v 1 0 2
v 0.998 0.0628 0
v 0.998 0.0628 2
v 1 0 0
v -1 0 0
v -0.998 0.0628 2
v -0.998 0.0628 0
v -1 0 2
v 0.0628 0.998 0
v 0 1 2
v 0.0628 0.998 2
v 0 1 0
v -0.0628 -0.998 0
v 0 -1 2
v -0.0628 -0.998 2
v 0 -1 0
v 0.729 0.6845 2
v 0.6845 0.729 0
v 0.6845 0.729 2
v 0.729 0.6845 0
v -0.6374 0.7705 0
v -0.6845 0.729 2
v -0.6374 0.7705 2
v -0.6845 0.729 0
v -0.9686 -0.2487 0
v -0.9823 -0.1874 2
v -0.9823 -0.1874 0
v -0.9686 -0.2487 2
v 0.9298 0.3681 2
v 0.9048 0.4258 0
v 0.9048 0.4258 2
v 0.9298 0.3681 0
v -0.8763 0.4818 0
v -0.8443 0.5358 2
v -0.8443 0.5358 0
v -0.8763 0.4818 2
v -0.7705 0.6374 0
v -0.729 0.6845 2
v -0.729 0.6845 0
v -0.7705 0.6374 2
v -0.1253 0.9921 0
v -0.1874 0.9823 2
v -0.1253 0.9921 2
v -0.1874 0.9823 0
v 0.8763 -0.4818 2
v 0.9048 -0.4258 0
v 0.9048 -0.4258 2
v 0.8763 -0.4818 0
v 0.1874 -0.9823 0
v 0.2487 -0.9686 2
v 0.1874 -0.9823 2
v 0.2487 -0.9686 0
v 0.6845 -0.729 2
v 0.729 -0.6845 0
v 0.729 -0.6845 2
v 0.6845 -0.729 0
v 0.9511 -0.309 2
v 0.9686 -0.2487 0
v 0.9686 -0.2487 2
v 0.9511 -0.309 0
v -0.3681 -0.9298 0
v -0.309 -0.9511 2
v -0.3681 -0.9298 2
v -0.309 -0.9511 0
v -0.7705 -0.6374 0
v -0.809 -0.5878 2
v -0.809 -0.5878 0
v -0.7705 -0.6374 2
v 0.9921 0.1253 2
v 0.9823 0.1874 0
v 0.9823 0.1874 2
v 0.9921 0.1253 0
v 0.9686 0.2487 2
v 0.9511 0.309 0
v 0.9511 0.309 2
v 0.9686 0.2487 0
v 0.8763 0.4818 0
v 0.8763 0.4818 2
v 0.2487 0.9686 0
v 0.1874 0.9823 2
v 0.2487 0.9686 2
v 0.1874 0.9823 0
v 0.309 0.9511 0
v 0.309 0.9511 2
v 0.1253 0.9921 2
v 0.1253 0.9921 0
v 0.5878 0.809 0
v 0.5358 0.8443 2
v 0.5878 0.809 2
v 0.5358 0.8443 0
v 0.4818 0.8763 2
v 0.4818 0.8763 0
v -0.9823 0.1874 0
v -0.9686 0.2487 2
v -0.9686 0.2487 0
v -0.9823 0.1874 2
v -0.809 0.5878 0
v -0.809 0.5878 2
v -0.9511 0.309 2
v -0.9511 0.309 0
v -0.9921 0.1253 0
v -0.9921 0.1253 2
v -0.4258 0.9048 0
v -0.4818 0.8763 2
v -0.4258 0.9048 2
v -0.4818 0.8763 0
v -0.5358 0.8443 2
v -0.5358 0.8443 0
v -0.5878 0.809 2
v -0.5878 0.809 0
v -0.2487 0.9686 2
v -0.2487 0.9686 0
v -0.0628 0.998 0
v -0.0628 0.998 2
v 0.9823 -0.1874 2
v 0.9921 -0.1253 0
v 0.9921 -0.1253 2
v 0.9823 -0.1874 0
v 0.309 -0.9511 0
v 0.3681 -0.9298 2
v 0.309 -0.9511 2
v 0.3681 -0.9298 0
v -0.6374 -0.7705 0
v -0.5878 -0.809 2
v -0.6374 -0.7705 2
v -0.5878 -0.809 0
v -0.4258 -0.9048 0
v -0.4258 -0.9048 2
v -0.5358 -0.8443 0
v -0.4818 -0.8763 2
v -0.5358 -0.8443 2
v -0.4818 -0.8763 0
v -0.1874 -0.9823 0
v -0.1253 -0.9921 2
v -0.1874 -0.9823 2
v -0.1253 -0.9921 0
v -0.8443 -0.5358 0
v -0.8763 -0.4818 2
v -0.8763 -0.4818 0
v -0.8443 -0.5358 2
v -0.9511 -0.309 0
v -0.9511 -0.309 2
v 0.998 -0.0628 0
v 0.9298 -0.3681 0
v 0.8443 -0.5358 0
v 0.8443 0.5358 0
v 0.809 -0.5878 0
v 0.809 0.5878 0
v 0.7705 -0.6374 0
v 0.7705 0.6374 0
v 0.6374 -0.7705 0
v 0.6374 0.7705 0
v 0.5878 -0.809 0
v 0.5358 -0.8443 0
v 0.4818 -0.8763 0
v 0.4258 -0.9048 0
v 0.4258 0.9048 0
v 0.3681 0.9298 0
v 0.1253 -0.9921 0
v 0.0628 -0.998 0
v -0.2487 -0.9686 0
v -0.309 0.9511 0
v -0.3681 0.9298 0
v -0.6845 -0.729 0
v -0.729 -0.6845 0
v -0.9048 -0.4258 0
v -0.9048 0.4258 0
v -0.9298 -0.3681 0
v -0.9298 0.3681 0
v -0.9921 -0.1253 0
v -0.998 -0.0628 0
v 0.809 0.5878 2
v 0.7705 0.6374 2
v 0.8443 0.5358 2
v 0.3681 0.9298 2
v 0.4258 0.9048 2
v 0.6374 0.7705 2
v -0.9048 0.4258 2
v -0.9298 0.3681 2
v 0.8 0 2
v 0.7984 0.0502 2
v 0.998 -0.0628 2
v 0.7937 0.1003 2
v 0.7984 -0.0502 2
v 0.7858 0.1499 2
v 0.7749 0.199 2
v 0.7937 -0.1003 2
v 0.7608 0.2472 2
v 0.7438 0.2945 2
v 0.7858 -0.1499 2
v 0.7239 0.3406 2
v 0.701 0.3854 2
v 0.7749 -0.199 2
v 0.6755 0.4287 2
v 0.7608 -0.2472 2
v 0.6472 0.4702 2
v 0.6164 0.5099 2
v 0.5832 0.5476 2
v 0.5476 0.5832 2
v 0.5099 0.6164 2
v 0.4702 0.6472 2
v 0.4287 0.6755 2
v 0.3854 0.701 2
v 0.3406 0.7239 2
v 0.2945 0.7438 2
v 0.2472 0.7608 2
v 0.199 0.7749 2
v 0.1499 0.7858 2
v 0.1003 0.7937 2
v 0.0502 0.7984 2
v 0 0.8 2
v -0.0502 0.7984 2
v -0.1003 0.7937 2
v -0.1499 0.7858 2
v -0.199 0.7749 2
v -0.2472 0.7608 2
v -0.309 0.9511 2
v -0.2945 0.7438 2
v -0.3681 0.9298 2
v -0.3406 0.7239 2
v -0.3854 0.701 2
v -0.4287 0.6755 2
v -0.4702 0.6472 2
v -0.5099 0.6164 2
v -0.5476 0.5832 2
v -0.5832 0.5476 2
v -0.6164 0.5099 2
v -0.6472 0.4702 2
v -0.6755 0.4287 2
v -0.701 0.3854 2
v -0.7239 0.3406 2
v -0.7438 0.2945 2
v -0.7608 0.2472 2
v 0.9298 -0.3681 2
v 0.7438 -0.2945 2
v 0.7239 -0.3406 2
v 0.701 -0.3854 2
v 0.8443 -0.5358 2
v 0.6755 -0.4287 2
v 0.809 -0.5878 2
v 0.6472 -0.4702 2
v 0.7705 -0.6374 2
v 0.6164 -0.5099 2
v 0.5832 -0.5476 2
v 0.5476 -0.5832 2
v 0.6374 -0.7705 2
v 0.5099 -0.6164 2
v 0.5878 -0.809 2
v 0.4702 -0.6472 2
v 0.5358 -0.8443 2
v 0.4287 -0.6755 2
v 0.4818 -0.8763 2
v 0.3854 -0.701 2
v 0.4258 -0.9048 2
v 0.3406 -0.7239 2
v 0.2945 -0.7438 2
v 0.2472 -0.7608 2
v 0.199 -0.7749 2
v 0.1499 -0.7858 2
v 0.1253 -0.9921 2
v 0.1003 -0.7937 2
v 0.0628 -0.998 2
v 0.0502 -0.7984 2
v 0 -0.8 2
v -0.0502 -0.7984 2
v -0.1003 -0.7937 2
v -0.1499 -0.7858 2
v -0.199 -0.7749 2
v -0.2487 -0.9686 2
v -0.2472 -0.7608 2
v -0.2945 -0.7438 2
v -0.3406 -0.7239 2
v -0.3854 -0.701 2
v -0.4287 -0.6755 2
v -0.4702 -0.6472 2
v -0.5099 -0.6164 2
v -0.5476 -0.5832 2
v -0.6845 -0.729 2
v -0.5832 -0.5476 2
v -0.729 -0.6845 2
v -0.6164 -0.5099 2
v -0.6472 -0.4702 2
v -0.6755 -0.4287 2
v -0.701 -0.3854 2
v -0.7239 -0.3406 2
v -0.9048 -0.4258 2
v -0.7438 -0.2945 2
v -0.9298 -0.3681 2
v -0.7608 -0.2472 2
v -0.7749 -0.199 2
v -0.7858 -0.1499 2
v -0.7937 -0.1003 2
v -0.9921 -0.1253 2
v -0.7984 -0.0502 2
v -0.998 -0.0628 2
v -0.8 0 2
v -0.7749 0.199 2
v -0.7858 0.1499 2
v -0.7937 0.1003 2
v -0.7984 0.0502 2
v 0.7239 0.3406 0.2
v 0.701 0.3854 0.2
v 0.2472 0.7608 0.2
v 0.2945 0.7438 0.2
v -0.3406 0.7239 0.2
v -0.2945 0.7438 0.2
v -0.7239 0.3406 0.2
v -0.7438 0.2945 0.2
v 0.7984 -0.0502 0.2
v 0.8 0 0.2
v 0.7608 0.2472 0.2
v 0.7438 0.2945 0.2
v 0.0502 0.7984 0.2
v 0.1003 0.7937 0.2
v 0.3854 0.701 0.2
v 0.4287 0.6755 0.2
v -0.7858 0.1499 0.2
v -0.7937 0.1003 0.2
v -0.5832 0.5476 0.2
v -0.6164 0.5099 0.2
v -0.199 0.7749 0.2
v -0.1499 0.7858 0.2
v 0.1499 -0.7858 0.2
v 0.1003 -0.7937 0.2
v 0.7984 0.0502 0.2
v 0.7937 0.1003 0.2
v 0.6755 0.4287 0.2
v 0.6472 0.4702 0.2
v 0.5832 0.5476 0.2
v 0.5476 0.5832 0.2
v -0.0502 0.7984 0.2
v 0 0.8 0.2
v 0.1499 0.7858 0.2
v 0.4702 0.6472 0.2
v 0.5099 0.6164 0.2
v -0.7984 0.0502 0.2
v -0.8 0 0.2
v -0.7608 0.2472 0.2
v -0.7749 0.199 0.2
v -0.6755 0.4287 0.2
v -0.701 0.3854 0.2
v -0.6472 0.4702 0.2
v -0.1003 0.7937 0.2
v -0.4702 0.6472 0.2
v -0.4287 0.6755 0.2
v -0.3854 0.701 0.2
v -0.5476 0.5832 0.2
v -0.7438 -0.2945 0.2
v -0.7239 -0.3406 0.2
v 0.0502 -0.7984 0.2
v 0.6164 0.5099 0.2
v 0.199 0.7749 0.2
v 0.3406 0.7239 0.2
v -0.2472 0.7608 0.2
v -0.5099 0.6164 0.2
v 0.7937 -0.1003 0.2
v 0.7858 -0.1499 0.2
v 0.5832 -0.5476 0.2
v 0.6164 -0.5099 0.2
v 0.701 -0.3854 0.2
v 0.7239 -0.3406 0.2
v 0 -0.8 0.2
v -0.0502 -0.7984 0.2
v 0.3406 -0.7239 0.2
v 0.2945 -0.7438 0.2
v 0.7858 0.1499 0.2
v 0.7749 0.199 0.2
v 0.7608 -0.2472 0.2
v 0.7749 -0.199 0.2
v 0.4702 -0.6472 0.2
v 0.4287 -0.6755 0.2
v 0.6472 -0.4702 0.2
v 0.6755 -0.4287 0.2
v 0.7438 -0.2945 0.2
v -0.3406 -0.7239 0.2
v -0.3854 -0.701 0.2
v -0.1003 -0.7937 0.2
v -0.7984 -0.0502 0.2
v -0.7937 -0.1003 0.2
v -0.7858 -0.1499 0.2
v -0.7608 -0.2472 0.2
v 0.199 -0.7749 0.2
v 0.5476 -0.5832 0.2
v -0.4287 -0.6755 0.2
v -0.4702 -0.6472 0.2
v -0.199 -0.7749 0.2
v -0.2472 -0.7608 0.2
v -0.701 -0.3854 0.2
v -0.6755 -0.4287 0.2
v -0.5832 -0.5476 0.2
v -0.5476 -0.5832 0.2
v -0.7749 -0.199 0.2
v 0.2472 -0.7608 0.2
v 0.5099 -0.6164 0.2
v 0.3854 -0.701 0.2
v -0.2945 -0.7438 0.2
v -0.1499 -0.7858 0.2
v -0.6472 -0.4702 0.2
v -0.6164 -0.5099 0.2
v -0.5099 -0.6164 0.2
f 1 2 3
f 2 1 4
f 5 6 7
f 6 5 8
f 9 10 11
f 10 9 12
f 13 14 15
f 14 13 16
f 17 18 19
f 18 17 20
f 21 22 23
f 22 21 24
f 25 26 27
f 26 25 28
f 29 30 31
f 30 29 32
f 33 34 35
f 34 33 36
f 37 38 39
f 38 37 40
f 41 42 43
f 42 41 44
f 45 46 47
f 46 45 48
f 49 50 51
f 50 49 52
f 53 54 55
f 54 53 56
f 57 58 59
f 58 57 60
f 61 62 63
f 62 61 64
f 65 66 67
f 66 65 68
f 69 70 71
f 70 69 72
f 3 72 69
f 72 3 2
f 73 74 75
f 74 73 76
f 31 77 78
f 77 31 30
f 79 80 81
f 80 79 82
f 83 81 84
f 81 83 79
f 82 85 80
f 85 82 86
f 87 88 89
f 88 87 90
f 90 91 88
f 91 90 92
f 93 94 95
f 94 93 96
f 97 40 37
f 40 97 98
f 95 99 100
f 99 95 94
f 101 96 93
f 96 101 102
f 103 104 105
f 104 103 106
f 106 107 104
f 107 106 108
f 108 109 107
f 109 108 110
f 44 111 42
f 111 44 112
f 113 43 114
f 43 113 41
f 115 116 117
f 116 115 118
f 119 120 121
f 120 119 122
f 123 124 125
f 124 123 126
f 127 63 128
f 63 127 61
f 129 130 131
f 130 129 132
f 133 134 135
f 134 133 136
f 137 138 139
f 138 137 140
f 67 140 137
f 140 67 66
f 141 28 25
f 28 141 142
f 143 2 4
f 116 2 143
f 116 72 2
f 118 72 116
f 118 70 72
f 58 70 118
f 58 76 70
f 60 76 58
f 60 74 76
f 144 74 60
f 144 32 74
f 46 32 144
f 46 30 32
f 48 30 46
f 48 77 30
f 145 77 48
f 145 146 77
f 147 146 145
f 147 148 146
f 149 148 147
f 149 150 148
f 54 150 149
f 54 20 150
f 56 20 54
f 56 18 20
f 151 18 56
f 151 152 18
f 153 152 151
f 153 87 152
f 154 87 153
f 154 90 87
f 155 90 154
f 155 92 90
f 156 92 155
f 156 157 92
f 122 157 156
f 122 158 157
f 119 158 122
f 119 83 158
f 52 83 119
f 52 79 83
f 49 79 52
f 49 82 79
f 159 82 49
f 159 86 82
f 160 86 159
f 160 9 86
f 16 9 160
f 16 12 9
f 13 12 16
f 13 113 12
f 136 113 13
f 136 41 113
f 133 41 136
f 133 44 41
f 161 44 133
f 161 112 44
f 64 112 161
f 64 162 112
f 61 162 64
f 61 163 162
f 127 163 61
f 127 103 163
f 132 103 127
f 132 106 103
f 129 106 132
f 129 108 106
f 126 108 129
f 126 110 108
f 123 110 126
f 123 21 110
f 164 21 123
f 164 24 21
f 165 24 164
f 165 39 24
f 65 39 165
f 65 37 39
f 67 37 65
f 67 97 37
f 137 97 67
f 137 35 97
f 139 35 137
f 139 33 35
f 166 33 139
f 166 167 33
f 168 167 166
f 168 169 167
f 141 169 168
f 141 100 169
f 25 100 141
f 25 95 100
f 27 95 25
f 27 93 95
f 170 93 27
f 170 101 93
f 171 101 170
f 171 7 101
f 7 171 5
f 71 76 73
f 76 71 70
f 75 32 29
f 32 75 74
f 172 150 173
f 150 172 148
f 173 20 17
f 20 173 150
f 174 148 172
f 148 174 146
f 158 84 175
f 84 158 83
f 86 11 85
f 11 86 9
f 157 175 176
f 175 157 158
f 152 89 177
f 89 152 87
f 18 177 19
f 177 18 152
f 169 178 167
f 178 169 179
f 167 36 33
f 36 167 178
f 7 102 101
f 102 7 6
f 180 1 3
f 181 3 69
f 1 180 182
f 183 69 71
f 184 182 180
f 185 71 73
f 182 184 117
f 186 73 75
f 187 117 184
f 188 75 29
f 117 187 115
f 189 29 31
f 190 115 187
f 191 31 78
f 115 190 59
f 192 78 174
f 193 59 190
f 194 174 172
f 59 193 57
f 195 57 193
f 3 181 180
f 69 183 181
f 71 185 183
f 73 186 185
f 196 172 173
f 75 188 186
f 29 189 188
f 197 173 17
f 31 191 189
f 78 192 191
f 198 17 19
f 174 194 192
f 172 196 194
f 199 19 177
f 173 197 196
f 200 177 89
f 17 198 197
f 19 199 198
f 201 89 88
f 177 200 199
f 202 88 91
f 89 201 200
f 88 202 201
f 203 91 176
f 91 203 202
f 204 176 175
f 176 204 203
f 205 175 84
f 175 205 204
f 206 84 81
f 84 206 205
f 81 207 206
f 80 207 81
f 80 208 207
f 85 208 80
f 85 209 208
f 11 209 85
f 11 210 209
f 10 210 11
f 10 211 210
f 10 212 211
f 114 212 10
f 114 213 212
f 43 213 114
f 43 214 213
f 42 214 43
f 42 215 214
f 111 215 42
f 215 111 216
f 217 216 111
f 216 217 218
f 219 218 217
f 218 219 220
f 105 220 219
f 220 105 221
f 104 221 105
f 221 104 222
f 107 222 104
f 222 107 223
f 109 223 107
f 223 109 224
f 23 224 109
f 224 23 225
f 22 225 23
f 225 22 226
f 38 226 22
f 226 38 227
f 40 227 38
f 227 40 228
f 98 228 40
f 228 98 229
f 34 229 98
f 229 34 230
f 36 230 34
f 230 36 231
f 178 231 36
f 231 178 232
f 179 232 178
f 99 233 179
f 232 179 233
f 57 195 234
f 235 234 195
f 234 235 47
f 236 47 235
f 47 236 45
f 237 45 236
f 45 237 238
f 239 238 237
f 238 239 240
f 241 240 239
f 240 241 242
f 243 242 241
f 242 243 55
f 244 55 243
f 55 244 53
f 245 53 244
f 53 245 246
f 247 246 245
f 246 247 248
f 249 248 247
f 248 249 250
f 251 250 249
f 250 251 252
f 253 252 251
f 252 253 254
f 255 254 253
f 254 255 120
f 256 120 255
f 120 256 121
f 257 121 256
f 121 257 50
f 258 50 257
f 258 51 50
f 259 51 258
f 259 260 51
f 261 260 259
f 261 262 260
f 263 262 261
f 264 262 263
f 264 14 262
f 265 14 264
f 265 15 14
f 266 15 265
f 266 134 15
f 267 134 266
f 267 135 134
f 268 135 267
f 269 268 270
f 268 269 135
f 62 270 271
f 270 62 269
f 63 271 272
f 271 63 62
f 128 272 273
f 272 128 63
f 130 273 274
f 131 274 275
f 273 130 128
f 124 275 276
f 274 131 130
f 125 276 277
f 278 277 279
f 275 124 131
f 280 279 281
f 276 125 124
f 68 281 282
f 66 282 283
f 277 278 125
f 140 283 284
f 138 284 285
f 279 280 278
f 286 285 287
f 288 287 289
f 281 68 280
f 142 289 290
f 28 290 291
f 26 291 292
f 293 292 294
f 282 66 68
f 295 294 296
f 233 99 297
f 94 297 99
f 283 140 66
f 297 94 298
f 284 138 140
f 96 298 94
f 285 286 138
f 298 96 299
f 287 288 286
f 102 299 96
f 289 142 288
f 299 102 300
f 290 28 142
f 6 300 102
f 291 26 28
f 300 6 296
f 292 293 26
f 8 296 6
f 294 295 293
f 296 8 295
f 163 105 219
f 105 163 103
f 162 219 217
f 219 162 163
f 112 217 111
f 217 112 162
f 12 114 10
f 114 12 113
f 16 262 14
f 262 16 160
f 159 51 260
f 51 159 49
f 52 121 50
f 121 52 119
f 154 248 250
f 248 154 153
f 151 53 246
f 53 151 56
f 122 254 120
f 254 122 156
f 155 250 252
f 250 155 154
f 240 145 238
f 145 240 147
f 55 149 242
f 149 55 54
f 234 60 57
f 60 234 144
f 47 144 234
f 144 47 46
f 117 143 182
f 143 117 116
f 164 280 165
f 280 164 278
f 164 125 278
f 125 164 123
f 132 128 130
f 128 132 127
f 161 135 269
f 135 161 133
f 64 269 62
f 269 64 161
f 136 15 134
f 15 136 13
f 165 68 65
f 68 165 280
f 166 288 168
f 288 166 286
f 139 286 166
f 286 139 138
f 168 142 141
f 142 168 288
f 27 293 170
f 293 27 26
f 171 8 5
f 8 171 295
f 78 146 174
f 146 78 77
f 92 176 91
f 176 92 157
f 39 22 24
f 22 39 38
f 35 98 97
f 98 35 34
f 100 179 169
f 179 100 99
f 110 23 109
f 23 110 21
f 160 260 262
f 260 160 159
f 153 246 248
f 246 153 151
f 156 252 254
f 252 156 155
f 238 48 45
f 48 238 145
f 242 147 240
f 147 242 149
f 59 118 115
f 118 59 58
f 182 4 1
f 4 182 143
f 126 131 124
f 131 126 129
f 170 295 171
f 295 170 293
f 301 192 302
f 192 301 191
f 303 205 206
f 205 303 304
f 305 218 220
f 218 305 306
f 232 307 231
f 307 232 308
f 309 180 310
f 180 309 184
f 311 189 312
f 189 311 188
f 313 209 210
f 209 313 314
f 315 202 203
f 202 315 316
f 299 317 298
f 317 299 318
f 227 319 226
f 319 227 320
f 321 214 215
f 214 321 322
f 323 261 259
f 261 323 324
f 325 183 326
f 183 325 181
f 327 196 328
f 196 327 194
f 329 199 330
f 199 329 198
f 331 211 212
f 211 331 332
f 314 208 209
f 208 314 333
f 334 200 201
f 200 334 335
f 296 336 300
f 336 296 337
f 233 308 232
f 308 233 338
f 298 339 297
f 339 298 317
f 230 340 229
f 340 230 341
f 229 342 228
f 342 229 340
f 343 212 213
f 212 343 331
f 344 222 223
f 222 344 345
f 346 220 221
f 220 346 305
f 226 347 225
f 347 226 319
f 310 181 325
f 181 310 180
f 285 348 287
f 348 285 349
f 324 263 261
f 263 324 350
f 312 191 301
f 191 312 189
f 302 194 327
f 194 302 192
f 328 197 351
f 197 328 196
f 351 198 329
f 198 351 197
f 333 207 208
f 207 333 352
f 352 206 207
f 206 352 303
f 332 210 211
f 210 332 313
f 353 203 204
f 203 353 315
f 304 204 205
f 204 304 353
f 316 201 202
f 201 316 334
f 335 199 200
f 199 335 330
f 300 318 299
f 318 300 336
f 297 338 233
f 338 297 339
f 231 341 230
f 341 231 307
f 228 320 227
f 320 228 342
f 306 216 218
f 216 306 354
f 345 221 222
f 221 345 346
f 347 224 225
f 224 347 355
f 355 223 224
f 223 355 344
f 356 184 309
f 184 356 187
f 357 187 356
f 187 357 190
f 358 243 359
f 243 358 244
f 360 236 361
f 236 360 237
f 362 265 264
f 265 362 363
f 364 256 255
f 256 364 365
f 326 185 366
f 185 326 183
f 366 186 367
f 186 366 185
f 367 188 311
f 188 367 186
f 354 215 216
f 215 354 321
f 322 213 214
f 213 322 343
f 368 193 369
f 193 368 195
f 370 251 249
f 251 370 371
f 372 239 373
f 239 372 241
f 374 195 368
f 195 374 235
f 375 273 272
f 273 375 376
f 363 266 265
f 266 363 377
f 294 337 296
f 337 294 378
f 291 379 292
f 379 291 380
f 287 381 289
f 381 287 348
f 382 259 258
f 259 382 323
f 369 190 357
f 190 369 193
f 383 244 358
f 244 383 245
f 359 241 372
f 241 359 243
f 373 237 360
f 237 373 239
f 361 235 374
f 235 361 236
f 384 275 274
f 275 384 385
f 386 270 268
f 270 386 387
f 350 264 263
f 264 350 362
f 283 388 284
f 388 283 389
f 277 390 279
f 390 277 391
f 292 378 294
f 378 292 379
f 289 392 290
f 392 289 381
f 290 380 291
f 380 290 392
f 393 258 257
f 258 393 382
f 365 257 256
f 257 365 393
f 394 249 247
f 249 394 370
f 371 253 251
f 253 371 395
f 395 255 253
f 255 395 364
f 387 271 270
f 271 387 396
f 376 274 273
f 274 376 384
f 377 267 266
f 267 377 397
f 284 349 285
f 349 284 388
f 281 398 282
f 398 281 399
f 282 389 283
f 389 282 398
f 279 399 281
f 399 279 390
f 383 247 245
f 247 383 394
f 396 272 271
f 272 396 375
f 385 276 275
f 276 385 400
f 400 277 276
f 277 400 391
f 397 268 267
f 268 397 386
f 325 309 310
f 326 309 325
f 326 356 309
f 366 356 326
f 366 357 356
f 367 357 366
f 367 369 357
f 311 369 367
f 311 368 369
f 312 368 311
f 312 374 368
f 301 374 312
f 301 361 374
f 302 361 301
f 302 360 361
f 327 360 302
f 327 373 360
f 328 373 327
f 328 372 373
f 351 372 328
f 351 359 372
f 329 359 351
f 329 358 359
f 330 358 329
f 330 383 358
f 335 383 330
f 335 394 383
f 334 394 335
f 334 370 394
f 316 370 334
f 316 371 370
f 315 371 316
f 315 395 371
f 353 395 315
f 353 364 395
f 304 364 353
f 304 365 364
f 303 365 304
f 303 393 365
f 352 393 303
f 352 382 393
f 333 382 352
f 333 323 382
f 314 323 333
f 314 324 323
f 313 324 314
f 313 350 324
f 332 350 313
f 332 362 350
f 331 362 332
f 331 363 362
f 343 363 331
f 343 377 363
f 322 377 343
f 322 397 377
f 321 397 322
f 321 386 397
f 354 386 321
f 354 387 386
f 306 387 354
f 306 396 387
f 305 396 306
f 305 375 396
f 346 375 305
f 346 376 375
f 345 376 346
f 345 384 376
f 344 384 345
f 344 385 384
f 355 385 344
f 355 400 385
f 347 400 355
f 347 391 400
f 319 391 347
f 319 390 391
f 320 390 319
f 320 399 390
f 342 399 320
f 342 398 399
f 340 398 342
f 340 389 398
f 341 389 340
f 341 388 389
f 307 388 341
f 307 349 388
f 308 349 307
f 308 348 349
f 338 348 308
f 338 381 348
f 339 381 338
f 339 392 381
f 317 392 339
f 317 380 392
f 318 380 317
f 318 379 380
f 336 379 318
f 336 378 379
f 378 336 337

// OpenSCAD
$fn = 100;

union() {
    difference() {
        cylinder(2, 1, 1, false);
        cylinder(2.1, 0.8, 0.8, false);
    }
    cylinder(0.2, 1, 1, false);
}
